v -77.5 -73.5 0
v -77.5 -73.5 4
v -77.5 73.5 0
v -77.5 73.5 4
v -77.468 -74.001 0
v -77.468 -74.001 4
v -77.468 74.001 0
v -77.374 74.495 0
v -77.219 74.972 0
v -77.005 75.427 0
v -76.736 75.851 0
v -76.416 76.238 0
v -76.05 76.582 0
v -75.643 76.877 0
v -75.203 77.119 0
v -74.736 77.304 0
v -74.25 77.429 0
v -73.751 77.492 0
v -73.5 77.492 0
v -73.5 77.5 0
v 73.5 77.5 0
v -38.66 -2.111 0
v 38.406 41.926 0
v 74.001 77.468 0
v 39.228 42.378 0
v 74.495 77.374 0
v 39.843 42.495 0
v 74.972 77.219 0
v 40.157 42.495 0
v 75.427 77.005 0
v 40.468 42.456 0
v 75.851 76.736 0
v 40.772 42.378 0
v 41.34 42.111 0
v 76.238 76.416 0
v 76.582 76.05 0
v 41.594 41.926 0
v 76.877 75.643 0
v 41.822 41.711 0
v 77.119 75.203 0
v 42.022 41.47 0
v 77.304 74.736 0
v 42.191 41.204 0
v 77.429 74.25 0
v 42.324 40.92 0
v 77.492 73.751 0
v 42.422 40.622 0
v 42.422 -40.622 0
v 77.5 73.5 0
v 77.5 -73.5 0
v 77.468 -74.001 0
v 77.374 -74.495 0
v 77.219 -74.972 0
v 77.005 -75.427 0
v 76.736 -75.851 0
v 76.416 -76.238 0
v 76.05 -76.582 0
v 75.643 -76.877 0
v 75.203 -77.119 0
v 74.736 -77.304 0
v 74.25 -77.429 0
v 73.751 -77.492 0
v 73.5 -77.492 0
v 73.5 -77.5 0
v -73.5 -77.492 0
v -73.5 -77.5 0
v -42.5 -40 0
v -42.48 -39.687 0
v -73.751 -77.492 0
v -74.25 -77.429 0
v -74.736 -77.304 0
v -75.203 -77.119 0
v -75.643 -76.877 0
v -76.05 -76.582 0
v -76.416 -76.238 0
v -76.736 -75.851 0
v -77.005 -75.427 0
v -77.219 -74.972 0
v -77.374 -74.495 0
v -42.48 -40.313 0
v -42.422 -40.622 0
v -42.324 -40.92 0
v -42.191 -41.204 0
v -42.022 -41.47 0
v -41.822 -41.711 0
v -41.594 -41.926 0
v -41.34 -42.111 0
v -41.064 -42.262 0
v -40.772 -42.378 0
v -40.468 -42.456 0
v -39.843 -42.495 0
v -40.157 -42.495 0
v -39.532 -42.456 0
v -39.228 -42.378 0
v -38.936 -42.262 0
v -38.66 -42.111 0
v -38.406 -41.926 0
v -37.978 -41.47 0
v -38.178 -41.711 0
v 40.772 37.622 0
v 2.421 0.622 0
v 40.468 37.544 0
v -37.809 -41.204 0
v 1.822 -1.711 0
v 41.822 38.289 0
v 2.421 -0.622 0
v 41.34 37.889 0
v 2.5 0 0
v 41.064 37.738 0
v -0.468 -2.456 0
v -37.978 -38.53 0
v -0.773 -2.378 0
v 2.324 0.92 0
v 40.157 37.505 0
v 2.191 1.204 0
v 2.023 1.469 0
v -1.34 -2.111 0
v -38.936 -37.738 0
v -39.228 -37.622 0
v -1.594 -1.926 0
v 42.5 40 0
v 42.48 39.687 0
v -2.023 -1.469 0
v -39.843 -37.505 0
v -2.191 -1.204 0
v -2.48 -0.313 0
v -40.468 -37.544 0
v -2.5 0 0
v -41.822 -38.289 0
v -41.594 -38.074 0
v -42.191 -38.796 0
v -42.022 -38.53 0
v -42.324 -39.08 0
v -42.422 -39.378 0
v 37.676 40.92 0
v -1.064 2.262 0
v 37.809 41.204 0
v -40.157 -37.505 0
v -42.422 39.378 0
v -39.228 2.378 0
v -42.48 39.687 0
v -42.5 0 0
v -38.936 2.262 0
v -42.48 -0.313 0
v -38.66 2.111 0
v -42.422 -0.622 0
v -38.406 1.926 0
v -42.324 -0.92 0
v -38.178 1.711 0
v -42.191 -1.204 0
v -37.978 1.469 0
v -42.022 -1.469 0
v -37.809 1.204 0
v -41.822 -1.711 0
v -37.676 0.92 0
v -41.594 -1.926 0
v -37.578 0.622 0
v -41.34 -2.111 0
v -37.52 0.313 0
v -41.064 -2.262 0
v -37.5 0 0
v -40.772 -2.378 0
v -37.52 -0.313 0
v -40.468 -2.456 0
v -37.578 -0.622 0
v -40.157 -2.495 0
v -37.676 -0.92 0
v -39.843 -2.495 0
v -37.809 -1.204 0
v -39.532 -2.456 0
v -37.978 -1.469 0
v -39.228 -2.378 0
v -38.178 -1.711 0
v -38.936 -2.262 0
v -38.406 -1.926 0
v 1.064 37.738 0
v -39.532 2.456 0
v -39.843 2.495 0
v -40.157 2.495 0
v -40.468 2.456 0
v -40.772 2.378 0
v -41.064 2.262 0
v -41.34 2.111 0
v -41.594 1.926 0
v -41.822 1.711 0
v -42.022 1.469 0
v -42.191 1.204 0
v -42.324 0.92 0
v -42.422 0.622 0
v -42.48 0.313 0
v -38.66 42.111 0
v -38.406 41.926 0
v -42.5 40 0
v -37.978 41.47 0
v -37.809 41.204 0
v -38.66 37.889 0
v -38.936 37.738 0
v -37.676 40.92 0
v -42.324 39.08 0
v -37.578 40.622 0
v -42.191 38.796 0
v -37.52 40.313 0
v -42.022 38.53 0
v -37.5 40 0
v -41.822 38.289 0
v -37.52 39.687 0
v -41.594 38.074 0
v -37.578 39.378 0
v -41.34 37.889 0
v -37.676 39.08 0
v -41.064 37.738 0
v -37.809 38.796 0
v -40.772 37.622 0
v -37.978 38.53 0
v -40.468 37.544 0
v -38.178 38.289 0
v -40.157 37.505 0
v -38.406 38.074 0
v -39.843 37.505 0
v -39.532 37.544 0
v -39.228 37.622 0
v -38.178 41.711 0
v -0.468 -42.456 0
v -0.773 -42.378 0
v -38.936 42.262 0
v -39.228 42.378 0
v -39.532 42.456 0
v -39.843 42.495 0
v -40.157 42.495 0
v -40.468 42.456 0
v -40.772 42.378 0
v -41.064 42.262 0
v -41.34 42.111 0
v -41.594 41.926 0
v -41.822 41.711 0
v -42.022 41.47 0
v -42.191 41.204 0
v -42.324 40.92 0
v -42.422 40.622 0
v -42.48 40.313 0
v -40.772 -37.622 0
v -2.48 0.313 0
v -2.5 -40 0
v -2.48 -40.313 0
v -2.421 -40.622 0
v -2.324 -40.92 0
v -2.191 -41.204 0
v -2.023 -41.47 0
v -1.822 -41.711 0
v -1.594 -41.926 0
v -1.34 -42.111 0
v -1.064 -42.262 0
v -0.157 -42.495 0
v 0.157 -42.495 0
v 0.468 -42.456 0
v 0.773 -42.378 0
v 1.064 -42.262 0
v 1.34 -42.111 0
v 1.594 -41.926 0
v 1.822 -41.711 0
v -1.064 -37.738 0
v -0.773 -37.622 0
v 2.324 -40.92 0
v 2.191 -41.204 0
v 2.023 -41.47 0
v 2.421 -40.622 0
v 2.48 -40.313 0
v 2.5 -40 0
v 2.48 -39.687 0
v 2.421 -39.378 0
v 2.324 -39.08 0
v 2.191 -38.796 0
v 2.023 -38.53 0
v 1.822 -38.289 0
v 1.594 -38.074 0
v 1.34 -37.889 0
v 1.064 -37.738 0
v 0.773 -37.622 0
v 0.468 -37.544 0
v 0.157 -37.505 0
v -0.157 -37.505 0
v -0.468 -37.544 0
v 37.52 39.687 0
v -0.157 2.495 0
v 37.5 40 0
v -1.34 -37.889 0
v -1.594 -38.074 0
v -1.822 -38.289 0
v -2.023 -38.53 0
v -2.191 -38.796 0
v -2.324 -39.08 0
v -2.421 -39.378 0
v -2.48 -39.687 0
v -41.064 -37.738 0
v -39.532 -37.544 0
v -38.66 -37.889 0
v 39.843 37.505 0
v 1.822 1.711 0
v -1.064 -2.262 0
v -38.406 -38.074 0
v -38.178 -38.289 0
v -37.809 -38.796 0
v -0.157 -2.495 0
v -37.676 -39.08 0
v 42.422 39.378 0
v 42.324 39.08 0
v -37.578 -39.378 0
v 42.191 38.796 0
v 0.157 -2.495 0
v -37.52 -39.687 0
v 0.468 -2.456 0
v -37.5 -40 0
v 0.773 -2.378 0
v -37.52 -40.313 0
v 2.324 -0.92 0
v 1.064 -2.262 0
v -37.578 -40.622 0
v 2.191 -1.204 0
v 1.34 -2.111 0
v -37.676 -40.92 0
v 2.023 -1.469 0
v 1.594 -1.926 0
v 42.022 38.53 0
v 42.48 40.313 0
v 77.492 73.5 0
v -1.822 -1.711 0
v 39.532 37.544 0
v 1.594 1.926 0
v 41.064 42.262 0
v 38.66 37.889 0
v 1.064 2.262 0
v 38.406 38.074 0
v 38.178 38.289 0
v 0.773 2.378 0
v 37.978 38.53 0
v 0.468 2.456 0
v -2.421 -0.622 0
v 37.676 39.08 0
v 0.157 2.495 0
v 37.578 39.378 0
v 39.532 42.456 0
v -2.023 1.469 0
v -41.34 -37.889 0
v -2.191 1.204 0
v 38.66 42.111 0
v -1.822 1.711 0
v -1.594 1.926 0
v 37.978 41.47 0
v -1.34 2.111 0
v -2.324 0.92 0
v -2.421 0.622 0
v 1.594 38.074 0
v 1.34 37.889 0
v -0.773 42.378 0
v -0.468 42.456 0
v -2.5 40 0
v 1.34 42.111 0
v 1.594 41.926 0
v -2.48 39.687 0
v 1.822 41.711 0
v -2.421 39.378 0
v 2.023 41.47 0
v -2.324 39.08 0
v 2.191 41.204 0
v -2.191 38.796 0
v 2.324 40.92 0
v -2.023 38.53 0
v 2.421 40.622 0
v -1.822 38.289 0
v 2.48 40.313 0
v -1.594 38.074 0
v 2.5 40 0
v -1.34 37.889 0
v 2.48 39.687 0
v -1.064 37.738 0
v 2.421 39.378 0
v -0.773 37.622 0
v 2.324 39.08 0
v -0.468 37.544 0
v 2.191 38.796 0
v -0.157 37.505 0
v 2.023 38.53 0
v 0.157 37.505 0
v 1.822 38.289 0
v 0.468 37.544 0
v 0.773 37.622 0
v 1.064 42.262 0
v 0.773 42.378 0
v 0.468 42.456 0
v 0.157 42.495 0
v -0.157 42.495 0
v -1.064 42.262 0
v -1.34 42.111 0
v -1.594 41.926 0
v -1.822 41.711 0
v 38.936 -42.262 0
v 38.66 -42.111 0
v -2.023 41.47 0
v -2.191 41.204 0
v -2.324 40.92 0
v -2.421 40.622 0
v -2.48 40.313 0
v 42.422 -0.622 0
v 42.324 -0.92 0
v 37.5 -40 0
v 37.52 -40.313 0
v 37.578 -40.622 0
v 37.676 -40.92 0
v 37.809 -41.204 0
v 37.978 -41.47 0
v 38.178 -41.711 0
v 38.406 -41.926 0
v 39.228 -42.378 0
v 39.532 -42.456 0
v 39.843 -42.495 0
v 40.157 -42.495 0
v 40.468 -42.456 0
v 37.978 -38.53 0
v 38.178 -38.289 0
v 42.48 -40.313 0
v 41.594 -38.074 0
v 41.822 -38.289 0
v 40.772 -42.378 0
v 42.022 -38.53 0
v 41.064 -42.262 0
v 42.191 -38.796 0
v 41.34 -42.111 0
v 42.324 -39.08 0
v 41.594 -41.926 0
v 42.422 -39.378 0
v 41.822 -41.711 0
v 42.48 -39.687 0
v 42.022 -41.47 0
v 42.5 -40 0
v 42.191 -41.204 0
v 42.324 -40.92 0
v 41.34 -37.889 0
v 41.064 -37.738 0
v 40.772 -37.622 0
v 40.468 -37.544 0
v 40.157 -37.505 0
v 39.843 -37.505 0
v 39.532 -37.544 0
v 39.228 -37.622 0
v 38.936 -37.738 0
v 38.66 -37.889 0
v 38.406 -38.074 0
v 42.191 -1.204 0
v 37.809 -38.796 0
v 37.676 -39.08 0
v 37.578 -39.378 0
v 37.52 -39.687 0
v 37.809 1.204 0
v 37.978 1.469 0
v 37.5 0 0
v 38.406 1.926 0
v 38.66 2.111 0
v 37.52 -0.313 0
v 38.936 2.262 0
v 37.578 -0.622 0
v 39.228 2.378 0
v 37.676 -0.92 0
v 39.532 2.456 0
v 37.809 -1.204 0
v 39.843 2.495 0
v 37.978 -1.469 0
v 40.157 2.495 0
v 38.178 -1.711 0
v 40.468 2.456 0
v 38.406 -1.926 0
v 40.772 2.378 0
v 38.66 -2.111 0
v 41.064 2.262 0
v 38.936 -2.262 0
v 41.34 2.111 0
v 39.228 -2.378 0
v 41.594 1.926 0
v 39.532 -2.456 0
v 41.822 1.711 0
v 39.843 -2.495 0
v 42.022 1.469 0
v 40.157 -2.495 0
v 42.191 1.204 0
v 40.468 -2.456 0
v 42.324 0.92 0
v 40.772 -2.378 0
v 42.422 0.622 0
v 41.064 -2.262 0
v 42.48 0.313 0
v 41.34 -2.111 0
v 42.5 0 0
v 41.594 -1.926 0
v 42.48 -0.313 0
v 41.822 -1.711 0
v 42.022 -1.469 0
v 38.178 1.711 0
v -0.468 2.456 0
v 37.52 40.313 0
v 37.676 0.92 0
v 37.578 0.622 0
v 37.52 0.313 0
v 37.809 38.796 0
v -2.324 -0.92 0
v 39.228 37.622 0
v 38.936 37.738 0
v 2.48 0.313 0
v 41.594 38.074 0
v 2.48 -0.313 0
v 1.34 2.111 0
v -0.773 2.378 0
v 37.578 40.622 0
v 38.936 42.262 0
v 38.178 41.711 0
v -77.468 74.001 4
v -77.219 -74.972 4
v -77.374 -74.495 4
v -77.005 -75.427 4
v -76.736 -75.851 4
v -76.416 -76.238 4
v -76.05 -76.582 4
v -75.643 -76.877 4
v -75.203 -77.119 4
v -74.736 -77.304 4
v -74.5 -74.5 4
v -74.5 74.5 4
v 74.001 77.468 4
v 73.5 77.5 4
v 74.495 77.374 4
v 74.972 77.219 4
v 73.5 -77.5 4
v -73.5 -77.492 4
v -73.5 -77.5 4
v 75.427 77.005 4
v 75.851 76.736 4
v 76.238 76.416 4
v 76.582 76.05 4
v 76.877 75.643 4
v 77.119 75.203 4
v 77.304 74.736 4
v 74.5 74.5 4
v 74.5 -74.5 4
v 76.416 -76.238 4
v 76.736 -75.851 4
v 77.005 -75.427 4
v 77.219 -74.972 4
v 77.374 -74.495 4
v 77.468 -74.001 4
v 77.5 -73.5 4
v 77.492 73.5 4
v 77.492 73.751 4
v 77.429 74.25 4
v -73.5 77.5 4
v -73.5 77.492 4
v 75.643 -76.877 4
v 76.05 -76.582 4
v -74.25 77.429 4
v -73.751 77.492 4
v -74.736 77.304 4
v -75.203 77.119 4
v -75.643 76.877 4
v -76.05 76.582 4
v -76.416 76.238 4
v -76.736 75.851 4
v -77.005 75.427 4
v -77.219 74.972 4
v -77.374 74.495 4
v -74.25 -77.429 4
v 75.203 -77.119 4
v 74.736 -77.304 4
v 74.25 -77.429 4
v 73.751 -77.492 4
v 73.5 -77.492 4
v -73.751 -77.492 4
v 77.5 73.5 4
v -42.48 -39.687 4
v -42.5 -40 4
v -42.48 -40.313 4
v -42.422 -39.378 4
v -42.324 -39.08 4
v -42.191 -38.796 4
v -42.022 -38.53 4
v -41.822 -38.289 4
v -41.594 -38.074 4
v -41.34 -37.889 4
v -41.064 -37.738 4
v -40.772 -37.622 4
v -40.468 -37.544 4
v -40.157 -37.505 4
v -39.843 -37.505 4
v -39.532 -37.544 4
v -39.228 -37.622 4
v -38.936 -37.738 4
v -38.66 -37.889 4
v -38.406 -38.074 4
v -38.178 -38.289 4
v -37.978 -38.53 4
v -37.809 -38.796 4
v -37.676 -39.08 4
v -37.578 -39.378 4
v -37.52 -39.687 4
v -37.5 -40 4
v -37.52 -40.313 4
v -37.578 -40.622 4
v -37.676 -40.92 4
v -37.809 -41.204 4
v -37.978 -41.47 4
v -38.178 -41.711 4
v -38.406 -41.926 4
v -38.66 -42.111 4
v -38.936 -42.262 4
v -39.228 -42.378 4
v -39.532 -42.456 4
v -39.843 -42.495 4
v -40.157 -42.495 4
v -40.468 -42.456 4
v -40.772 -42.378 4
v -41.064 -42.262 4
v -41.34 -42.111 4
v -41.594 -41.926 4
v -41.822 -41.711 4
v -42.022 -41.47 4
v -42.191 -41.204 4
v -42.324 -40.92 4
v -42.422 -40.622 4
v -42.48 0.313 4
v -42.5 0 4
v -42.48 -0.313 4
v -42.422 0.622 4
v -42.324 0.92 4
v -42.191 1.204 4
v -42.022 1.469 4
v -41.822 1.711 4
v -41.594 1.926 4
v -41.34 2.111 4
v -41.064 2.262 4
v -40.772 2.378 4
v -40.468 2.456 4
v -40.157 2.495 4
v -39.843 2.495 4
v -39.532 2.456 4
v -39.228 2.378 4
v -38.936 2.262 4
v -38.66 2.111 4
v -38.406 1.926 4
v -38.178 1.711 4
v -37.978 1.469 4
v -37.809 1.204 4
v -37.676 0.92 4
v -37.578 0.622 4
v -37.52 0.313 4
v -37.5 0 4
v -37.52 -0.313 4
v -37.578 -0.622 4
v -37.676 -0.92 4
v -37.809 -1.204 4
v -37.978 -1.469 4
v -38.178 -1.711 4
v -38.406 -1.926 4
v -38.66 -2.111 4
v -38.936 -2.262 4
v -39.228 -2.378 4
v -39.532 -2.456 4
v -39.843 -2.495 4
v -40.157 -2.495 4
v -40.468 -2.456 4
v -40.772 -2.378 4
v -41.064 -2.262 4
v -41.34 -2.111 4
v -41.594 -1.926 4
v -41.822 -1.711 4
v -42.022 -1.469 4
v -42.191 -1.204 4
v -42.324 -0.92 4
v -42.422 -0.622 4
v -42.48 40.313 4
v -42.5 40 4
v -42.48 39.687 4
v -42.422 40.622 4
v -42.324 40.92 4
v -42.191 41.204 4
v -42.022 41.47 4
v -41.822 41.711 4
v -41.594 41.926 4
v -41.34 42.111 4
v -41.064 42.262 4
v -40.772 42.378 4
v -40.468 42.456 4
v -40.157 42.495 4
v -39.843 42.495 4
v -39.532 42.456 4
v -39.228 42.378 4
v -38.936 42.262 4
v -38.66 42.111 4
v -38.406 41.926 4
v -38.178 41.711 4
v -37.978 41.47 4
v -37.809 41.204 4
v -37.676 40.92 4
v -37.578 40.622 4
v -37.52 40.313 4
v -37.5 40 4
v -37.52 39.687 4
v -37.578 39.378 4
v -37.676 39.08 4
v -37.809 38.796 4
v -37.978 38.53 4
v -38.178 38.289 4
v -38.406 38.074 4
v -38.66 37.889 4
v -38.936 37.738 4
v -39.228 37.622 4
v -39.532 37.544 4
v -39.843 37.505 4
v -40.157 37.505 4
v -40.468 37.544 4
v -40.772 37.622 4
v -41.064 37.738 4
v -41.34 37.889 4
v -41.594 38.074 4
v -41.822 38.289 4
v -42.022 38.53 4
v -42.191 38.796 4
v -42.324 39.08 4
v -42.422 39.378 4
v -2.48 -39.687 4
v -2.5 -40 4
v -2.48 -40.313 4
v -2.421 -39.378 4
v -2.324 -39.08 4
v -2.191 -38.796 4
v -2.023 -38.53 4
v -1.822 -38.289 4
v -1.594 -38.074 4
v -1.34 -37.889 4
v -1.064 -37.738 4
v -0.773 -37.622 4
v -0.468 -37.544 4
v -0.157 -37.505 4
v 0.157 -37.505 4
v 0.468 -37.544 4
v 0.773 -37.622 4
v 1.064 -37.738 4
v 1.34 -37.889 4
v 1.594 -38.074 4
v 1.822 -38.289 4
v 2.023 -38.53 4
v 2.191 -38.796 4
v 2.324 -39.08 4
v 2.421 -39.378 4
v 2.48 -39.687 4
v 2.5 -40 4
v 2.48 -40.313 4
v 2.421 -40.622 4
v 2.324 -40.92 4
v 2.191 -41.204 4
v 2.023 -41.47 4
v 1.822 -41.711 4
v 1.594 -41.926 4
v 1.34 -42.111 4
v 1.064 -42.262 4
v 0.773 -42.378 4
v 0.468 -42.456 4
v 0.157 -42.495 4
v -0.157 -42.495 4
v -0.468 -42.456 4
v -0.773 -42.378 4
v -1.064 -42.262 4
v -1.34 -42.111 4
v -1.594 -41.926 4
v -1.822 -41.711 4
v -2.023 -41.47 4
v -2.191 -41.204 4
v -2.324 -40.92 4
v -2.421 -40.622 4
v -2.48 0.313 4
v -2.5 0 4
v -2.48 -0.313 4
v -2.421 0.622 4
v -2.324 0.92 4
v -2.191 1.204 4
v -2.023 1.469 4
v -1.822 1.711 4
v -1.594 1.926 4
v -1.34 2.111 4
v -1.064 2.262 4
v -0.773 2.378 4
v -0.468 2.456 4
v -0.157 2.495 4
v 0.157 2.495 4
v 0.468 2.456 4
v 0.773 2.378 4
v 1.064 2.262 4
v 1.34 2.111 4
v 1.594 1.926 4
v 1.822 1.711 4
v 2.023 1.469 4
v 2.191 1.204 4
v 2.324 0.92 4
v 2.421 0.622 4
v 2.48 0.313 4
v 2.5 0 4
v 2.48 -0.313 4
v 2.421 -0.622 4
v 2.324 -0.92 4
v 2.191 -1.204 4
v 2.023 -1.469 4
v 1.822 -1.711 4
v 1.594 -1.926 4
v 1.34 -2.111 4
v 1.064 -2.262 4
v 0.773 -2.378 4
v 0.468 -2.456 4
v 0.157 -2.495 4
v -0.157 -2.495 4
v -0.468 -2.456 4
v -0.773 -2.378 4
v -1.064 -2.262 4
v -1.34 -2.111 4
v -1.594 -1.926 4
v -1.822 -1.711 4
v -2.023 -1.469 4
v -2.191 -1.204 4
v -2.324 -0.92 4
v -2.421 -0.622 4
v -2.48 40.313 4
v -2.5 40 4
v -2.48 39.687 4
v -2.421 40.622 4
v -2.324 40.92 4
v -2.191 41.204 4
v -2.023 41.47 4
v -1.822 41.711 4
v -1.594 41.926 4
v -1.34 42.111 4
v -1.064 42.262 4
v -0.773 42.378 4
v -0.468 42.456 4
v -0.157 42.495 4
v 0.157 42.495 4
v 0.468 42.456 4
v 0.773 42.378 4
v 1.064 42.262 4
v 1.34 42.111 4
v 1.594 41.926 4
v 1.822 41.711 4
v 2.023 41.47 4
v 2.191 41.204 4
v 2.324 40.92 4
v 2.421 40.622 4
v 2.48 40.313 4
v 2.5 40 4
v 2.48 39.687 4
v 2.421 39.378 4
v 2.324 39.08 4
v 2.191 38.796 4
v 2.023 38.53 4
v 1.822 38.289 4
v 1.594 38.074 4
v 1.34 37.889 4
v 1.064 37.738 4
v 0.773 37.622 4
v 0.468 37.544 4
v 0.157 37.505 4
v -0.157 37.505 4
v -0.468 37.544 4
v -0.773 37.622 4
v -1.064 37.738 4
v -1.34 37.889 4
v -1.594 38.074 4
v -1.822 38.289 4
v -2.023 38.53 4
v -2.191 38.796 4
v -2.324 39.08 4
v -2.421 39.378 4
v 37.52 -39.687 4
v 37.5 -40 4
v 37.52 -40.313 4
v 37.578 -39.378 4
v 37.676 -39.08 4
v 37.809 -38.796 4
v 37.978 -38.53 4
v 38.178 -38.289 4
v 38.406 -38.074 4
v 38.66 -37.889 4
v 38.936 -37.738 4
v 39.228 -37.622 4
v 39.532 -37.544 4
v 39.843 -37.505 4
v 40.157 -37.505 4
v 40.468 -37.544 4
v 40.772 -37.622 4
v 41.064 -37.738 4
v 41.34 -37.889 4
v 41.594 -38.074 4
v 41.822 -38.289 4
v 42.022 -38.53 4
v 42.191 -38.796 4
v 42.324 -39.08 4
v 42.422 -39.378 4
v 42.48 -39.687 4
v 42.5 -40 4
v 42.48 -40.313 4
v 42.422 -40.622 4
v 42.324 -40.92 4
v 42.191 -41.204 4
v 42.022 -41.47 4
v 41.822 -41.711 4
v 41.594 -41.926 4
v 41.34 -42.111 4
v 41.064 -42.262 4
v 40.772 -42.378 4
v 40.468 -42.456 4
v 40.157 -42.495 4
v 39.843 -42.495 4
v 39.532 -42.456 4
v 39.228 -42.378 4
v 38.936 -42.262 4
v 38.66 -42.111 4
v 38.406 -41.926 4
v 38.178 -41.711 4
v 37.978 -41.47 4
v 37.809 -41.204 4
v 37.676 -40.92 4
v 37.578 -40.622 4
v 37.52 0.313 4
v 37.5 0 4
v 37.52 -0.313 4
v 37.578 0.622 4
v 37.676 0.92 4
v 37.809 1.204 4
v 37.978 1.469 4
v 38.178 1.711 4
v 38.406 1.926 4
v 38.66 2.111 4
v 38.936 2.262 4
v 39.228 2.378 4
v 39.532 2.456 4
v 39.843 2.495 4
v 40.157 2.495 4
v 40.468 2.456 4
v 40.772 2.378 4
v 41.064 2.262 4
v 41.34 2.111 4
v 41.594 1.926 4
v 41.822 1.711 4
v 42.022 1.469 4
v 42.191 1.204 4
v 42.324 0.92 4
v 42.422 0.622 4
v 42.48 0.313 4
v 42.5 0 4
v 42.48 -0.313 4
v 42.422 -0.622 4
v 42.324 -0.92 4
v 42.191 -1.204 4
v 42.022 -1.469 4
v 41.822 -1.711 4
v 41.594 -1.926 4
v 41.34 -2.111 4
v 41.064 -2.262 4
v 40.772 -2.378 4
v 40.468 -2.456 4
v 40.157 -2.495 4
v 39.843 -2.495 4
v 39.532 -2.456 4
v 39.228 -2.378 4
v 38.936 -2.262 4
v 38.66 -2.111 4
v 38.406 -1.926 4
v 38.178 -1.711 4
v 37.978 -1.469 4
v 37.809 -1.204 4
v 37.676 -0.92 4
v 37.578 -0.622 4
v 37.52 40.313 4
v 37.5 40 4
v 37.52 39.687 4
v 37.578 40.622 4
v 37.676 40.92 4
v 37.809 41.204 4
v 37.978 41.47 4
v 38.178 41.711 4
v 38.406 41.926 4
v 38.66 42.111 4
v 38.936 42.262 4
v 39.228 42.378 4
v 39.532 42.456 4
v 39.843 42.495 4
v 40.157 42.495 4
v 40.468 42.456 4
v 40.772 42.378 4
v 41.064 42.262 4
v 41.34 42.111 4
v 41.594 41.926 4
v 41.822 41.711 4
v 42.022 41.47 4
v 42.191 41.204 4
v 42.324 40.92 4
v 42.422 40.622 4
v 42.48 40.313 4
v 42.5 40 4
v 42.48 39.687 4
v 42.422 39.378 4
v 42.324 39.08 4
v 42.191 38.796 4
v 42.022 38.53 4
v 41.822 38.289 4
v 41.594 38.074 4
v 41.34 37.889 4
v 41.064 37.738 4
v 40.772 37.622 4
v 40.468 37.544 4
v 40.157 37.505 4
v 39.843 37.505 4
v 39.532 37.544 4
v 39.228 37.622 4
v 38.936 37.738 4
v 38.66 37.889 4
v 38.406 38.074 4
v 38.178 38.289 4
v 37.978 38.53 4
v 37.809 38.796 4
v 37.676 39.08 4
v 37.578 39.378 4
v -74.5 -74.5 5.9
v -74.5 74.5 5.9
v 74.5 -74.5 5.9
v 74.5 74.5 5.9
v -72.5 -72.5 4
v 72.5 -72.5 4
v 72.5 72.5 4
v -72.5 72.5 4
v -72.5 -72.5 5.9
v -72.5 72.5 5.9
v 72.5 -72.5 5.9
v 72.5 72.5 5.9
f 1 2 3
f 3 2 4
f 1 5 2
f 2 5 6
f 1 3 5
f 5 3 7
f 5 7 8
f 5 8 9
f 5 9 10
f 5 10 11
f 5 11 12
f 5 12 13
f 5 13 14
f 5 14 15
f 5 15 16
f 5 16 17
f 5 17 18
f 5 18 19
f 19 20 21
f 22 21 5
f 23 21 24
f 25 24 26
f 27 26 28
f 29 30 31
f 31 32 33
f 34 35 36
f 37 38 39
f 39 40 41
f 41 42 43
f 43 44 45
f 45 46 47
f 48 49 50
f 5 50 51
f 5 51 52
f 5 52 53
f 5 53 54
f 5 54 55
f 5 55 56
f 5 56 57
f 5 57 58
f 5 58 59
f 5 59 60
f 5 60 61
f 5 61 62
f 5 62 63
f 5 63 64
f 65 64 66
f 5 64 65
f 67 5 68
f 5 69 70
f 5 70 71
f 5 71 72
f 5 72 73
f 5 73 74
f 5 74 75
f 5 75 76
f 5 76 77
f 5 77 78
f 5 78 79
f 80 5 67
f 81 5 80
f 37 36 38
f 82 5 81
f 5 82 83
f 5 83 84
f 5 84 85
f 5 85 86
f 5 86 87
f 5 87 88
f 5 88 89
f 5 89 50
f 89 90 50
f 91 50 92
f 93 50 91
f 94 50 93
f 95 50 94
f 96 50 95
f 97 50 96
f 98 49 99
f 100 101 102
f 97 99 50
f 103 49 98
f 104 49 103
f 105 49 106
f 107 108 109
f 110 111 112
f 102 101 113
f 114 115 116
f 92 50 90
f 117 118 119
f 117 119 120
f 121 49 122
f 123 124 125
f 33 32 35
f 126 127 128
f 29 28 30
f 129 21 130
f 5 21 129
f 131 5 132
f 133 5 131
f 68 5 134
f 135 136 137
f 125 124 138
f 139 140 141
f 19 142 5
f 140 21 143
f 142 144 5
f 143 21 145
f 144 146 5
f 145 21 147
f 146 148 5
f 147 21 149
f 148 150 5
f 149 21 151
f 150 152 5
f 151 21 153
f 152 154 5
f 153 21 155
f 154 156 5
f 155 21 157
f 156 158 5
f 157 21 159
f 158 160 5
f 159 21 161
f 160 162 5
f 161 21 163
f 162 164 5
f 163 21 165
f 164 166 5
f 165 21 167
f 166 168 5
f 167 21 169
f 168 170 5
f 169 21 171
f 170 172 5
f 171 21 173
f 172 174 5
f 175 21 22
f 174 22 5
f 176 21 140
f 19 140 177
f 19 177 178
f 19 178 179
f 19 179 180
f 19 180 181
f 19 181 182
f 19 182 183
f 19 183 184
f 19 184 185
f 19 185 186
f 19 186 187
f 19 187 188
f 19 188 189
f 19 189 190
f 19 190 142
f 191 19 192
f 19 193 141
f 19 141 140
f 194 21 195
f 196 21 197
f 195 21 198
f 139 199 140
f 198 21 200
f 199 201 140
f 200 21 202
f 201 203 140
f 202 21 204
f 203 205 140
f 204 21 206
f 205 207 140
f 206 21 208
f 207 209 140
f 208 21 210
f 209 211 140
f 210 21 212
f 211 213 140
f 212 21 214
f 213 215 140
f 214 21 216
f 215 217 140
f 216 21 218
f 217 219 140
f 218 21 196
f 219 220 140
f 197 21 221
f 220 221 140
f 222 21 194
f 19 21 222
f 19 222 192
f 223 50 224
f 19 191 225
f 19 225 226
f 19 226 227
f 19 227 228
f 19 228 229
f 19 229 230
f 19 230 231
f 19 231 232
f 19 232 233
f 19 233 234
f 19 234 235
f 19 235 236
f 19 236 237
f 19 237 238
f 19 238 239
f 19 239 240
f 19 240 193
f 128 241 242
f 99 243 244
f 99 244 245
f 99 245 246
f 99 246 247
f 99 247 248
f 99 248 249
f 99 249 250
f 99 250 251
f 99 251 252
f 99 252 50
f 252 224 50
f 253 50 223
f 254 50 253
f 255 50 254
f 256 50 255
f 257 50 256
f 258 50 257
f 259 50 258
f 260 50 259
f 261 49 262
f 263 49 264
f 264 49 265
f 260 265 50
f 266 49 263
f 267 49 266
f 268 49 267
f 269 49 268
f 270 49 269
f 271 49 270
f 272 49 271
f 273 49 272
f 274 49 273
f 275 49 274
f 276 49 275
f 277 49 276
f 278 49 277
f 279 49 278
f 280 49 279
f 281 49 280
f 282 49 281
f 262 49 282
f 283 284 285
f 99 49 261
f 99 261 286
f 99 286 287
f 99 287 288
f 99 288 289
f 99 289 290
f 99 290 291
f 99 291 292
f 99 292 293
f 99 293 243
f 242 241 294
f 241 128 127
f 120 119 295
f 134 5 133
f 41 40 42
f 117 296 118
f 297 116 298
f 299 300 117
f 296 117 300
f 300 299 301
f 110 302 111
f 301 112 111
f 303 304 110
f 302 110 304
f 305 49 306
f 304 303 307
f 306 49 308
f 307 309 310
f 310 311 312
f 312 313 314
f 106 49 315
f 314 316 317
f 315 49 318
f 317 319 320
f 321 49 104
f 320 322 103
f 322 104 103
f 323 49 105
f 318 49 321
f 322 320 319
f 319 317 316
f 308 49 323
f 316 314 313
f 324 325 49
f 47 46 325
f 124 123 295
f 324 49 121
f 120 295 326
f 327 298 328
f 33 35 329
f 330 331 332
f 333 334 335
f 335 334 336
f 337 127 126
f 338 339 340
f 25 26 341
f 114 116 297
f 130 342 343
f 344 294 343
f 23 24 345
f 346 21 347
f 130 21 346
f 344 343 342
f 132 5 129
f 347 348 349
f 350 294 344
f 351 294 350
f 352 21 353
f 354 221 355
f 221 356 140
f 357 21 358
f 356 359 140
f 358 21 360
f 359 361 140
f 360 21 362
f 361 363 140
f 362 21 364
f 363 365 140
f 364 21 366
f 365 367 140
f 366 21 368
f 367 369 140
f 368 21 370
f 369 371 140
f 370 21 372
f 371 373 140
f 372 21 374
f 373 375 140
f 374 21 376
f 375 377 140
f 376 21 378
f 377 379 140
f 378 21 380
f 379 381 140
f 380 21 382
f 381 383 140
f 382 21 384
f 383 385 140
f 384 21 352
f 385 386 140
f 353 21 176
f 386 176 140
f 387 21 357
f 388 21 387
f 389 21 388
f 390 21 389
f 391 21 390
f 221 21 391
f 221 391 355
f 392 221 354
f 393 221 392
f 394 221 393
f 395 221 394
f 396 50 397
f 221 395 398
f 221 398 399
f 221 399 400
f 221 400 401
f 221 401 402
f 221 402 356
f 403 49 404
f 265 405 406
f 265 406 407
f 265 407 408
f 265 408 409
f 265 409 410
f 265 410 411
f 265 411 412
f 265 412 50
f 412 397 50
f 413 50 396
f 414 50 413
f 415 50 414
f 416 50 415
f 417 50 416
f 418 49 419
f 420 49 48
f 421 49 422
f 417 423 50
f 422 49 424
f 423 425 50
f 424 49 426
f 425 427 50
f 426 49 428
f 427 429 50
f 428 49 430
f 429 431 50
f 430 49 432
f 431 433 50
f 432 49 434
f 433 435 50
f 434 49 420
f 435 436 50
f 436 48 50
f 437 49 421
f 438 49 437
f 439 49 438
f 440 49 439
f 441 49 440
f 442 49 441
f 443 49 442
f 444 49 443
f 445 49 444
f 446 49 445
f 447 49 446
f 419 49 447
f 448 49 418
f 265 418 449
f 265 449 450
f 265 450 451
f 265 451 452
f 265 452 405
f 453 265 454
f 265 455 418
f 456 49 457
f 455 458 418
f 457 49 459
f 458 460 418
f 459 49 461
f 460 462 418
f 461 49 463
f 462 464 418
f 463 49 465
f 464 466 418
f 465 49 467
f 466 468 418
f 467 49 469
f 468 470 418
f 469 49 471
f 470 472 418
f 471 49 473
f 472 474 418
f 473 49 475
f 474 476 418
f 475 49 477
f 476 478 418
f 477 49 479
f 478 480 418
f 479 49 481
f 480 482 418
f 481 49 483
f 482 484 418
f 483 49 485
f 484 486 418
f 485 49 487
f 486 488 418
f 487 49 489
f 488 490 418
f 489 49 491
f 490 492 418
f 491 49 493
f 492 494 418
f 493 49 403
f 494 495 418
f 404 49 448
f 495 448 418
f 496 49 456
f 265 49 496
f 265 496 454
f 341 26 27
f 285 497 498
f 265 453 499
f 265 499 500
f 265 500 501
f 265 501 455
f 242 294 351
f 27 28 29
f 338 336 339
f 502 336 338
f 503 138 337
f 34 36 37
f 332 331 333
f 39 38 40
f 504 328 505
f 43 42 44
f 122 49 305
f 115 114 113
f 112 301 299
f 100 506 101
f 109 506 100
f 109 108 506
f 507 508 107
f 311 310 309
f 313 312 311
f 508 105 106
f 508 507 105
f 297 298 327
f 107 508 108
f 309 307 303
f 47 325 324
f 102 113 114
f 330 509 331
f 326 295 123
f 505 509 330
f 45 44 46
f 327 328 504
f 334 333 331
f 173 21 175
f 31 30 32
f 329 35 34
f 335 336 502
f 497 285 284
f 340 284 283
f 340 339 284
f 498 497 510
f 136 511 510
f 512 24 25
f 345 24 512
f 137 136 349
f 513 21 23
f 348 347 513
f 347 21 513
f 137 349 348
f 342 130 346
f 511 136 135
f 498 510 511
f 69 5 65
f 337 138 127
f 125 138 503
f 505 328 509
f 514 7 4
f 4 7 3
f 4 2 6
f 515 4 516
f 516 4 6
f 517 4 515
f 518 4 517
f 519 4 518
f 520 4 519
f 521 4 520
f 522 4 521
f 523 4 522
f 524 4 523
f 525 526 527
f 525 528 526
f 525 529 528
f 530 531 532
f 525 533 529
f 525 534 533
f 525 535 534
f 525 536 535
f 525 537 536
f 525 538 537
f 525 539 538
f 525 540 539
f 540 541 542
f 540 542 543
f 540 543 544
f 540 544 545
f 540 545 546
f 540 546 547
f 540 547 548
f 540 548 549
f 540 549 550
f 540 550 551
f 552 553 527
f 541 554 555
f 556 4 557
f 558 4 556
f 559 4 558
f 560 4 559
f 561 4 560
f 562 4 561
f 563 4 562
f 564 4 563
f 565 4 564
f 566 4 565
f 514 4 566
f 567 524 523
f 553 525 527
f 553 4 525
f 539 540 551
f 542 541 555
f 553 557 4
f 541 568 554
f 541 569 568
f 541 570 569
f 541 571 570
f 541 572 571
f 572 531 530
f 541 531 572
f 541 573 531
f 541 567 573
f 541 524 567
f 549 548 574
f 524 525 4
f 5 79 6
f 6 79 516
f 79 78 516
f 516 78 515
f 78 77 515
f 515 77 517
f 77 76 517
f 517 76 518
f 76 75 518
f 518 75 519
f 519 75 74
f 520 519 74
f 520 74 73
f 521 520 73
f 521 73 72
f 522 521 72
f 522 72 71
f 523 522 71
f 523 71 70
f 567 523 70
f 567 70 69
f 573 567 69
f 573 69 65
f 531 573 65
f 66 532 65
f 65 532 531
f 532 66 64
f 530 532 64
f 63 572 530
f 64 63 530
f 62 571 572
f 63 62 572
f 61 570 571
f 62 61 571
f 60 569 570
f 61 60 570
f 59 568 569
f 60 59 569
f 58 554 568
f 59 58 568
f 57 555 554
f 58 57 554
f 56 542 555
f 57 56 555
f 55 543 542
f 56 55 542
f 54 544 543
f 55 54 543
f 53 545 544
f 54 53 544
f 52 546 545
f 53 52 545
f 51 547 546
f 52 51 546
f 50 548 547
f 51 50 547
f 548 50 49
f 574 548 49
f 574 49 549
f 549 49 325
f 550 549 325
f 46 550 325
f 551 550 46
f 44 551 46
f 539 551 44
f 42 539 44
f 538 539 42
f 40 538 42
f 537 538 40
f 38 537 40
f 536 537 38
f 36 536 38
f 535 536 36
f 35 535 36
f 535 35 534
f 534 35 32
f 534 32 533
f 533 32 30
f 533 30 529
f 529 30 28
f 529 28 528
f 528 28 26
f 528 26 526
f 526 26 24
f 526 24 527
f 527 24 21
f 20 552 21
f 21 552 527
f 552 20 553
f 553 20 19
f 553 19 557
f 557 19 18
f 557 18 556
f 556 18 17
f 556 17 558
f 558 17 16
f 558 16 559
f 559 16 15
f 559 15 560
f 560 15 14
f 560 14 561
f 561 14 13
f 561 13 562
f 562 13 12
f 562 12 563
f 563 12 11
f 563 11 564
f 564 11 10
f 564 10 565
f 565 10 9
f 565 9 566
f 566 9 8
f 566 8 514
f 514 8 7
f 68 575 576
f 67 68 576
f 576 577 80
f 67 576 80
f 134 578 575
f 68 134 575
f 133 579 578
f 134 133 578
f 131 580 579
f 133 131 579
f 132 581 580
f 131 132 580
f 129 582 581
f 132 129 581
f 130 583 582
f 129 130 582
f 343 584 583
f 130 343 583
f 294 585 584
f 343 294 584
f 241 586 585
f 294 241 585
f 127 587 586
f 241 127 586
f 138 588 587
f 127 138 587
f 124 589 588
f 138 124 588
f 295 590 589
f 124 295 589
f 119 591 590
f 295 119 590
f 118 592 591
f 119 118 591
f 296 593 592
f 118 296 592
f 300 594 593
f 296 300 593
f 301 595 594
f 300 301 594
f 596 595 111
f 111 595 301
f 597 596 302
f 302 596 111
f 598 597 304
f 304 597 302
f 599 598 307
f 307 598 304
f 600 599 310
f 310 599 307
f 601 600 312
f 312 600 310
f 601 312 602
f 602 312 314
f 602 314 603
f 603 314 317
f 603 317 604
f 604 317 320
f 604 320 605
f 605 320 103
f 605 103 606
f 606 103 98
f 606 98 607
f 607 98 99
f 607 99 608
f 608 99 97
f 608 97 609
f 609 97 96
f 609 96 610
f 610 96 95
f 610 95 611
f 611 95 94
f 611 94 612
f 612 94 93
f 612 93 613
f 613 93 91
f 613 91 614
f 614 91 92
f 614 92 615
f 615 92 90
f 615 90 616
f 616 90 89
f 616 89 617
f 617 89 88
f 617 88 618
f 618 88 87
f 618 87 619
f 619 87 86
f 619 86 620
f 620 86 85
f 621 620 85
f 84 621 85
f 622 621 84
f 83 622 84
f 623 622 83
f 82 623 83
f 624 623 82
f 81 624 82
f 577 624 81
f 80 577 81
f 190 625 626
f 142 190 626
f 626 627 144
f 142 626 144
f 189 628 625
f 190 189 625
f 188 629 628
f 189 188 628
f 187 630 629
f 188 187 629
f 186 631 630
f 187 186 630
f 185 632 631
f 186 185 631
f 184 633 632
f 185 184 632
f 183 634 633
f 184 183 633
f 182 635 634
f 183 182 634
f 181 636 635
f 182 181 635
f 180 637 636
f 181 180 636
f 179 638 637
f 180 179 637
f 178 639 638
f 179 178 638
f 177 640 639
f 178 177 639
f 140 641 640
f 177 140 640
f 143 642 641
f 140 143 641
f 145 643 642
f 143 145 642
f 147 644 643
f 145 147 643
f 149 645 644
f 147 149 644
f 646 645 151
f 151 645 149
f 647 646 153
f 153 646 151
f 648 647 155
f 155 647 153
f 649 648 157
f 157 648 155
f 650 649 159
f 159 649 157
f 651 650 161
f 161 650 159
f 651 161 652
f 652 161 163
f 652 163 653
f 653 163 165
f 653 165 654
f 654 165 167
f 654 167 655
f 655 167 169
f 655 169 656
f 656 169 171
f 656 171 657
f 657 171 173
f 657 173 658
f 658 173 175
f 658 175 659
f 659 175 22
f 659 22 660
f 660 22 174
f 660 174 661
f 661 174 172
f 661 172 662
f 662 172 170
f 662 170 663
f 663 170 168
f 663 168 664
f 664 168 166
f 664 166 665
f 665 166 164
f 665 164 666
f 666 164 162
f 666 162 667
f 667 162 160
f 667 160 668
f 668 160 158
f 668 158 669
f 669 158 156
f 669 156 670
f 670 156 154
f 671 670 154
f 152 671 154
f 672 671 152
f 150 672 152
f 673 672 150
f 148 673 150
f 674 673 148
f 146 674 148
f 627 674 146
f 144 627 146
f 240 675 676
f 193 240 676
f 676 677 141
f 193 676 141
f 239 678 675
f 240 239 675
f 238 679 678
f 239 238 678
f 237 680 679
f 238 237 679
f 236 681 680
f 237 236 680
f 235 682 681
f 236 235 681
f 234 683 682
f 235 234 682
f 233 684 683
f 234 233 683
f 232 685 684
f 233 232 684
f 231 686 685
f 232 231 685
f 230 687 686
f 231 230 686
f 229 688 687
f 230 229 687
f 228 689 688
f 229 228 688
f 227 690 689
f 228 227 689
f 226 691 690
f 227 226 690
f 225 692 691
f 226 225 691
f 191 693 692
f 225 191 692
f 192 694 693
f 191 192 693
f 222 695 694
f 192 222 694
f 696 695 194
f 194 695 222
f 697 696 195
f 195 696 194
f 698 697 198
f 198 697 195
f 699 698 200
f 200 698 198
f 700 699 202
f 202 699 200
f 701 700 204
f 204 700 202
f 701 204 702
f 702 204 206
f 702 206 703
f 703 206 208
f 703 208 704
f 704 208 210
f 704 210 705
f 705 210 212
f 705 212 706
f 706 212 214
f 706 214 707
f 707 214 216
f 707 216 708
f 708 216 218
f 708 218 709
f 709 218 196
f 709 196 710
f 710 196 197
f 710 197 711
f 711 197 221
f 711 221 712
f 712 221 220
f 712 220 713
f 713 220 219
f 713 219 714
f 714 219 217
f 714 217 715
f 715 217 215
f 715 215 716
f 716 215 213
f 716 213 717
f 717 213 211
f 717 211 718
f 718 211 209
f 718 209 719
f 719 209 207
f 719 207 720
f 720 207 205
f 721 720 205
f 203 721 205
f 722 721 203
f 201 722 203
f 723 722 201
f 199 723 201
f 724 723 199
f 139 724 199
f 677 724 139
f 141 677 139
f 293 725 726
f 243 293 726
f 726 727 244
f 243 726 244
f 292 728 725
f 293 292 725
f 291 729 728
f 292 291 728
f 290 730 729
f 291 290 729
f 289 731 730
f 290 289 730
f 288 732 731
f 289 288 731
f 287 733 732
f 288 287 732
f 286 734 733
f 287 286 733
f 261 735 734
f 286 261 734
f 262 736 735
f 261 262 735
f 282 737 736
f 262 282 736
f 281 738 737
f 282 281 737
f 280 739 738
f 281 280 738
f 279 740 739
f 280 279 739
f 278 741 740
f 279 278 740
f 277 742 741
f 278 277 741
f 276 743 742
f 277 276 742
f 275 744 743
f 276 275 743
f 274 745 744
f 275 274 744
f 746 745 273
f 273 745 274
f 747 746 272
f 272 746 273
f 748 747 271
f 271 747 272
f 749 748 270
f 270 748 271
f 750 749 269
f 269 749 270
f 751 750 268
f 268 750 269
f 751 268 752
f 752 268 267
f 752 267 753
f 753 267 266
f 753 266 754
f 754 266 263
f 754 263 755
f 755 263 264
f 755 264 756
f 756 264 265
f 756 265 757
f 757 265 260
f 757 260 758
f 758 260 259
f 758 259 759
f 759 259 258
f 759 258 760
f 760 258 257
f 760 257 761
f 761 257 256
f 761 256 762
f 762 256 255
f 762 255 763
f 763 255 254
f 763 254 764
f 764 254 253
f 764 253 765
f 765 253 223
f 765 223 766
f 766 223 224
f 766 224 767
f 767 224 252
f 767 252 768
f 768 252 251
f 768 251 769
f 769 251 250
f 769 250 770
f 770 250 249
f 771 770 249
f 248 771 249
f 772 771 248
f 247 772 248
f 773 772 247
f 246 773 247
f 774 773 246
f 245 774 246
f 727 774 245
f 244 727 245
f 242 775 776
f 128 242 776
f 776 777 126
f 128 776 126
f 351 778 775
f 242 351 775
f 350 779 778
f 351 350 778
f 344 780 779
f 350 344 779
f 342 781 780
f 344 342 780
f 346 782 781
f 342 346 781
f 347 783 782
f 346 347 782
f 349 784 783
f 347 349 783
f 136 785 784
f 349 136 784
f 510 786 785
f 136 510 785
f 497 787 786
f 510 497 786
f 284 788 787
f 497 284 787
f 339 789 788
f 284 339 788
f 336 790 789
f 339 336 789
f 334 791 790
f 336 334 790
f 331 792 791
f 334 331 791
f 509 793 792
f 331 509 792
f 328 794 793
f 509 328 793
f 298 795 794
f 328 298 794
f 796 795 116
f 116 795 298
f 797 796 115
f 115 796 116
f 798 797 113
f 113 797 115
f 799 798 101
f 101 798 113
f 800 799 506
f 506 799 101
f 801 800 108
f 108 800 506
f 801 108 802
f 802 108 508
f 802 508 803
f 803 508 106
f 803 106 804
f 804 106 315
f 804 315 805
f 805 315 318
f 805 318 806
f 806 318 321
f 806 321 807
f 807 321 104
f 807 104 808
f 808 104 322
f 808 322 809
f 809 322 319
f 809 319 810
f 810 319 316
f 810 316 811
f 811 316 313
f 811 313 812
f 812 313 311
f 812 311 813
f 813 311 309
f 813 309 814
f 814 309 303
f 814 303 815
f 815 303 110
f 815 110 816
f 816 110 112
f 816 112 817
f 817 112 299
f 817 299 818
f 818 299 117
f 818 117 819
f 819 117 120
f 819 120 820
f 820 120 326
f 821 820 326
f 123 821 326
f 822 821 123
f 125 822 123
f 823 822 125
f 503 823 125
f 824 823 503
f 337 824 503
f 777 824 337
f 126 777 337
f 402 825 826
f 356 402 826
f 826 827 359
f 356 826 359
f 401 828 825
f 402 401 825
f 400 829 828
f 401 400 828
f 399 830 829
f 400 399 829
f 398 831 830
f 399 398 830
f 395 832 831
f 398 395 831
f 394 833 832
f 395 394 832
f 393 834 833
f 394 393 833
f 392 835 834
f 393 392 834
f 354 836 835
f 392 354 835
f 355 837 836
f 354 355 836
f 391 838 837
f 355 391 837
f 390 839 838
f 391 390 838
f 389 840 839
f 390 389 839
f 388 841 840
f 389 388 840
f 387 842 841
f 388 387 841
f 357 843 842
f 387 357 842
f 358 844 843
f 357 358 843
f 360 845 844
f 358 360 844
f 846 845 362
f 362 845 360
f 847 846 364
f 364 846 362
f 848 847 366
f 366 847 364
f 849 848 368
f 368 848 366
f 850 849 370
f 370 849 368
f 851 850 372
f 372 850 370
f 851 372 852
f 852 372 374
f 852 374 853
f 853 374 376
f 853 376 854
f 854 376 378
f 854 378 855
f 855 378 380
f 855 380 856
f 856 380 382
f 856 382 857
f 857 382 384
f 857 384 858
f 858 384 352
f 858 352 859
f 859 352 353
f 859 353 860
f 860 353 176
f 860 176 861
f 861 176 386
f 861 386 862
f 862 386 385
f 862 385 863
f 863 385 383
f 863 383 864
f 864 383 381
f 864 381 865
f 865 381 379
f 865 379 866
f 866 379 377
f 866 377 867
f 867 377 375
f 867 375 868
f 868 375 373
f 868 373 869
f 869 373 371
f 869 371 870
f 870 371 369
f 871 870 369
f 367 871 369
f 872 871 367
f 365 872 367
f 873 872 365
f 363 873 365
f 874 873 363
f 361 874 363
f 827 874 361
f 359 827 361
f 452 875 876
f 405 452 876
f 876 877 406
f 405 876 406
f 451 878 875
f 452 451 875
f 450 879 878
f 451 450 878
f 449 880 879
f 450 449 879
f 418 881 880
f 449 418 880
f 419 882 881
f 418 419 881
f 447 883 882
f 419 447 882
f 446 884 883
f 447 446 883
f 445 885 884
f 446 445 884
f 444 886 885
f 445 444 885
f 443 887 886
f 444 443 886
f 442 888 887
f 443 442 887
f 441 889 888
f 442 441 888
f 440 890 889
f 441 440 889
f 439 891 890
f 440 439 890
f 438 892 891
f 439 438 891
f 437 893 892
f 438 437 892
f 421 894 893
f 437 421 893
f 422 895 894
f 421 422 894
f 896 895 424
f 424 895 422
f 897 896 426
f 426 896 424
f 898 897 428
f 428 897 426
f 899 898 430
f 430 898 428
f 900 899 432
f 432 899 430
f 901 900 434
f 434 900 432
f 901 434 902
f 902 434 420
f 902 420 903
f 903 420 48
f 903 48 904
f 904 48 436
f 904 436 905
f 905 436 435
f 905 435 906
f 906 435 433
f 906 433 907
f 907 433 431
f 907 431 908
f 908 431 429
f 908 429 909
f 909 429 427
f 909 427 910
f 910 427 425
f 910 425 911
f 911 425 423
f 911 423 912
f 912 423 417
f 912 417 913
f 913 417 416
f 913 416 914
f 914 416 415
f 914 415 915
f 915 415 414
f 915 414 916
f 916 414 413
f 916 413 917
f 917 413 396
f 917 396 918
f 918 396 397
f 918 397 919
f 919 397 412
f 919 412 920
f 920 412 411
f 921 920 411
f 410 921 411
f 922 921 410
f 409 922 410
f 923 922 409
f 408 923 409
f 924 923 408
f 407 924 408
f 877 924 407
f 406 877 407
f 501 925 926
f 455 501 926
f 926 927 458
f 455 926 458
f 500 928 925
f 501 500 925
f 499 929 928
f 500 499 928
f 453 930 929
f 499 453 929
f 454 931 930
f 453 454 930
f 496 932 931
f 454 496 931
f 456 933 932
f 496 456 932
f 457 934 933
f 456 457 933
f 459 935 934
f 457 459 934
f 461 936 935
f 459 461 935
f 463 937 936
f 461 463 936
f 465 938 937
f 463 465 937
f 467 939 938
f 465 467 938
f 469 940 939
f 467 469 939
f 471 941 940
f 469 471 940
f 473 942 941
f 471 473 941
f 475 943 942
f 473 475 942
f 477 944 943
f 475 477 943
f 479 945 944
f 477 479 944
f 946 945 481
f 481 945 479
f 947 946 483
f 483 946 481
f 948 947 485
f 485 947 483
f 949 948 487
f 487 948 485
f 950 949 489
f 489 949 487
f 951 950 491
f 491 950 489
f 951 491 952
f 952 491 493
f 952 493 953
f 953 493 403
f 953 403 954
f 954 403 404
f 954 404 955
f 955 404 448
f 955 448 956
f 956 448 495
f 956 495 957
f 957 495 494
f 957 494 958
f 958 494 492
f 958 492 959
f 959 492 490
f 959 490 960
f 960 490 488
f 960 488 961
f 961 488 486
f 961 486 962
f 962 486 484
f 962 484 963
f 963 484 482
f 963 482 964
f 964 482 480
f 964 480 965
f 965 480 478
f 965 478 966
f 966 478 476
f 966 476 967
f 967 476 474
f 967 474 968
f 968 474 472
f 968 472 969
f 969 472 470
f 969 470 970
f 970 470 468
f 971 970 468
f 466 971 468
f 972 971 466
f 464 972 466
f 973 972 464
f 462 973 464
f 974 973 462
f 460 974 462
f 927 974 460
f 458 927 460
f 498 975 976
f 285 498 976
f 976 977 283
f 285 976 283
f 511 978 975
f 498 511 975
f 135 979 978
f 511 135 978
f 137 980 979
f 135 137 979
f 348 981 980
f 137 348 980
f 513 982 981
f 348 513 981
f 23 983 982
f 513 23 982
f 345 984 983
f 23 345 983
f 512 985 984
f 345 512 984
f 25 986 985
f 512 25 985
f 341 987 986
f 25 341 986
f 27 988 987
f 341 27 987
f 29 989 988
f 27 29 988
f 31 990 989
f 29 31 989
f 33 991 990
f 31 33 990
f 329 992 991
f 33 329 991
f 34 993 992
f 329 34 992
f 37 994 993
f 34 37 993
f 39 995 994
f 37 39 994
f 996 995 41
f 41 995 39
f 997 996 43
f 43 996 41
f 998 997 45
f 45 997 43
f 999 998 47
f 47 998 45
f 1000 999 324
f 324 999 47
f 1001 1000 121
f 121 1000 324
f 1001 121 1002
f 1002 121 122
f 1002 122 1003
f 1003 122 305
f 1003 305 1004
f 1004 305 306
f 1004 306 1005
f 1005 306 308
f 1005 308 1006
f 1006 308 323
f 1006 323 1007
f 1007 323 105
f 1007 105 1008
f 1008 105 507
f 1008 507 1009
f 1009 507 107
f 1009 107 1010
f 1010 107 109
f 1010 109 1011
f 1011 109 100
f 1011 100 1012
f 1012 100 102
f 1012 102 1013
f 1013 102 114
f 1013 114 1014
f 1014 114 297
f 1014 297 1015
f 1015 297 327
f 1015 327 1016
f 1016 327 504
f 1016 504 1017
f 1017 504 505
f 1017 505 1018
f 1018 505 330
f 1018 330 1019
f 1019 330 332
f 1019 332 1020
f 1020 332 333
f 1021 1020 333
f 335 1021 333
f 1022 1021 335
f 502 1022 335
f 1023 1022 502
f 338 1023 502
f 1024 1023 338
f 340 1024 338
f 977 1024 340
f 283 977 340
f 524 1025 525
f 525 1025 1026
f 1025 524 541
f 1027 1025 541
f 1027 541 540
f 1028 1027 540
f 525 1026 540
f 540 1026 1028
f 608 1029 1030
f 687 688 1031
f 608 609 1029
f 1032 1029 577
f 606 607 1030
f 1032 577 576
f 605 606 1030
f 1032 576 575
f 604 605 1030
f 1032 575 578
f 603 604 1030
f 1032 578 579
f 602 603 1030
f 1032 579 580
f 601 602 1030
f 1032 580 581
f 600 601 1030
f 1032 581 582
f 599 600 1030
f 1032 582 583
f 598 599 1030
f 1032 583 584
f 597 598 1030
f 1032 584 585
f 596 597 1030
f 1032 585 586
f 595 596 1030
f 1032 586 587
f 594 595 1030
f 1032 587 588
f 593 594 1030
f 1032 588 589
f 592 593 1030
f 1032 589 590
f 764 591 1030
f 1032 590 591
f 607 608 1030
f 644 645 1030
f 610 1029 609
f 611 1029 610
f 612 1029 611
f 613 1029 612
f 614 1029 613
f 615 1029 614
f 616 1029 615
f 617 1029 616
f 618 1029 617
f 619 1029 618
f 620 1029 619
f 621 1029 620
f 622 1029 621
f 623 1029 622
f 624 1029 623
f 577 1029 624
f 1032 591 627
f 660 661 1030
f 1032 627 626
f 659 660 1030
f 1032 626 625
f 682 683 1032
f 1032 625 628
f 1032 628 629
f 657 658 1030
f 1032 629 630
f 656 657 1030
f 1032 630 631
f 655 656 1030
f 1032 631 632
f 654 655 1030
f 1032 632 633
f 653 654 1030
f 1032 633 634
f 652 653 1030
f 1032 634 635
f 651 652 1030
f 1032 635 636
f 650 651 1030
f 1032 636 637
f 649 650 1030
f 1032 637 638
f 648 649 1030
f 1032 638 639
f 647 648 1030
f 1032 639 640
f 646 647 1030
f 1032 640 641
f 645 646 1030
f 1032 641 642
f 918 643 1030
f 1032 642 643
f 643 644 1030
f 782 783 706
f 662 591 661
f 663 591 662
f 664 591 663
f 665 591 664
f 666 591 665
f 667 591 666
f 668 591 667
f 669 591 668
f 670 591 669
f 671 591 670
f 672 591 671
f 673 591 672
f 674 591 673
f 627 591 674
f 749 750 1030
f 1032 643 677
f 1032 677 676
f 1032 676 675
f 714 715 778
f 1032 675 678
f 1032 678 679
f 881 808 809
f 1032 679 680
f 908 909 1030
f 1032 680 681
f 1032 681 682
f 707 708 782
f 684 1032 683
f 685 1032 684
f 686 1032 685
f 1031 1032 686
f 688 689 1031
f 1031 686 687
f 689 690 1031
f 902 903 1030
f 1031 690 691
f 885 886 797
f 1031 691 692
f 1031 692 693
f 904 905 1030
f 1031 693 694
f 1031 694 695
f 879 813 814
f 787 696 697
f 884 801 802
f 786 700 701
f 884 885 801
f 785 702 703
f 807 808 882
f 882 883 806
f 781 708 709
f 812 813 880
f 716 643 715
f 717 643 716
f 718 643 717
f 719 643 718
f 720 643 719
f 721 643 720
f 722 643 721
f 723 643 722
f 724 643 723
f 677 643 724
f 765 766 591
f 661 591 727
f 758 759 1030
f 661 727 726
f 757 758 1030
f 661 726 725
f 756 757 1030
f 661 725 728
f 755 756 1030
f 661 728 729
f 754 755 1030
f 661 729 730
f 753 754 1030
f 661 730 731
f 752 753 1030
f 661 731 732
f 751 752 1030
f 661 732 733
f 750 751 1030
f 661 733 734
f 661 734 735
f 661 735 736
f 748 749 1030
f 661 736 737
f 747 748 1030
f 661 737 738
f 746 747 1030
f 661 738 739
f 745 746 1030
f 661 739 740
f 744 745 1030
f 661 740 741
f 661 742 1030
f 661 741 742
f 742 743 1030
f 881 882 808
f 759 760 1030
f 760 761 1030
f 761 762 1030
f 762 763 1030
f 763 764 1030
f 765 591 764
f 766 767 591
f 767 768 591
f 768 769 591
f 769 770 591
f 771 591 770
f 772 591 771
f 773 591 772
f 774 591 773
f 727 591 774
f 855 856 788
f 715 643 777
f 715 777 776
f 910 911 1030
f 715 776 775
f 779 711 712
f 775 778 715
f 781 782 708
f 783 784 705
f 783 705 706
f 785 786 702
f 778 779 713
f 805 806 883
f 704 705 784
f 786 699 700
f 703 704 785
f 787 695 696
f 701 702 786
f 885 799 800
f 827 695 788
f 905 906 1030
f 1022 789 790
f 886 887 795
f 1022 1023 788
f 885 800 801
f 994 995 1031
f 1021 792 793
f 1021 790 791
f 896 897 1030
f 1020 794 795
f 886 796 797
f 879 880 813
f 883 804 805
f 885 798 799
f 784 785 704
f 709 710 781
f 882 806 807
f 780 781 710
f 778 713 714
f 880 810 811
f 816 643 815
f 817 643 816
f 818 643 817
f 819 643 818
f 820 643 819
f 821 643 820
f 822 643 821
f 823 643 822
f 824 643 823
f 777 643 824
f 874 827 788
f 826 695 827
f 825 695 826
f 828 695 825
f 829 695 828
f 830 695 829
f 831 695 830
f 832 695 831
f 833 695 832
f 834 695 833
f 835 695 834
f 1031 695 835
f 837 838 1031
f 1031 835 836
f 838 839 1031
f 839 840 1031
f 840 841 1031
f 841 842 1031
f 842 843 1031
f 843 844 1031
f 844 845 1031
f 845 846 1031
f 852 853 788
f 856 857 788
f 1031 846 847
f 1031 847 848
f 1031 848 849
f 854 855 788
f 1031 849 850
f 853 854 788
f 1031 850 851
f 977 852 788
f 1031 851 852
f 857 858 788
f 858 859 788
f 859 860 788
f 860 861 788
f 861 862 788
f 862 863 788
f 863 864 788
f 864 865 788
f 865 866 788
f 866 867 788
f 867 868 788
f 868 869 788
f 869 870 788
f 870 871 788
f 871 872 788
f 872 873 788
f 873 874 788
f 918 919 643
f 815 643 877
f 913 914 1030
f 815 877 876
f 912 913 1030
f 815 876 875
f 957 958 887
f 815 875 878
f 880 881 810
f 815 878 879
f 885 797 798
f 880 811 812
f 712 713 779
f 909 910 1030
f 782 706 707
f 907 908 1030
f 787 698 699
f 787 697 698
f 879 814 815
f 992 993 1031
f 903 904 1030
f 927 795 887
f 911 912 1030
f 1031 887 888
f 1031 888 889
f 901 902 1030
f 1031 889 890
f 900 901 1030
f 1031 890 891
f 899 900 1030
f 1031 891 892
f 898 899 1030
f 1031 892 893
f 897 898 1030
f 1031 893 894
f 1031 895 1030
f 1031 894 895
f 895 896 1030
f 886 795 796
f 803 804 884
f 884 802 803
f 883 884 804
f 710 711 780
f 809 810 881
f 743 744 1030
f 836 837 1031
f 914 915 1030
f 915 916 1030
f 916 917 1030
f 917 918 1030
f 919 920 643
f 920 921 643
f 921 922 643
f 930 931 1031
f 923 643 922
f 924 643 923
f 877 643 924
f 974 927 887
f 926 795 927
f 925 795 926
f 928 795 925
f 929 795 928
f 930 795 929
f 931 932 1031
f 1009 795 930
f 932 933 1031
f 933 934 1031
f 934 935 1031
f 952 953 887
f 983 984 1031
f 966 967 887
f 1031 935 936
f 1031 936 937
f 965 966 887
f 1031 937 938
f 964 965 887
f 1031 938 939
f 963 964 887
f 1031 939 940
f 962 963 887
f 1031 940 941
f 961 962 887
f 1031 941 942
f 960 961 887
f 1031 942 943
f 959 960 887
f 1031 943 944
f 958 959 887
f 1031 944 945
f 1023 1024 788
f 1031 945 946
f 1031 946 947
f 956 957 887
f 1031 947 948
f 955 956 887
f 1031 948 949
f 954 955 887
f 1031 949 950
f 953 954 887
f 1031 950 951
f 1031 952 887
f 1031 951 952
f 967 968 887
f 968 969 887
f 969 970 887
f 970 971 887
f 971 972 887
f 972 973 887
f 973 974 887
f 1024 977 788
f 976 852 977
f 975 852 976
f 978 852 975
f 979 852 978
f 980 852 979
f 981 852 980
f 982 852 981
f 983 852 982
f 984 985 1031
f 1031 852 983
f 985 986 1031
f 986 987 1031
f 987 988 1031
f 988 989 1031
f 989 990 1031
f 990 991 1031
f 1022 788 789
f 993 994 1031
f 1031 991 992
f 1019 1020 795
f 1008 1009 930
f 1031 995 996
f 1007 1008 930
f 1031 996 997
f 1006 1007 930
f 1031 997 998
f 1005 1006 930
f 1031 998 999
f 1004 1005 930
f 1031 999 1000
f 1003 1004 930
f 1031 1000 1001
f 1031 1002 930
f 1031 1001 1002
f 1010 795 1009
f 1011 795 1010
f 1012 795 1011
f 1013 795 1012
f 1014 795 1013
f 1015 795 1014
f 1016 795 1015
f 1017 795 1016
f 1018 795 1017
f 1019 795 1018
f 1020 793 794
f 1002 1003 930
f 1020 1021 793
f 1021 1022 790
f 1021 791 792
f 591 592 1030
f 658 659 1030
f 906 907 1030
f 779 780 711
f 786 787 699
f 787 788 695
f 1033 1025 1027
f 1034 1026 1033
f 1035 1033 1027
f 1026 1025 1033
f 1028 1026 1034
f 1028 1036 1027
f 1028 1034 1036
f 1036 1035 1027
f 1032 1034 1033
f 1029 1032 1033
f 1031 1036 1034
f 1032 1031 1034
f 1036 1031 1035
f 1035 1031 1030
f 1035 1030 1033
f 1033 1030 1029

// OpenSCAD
// A board for "electronique 2000" modules (Joustra)

// Copyright (c) 2014 Jérémie DECOCK <jd.jdhp@gmail.com>

/////////////////////////////////////////////

module board(feet_board_width,
             feet_board_spacing,
             feet_board_depth,
             holes_radius,
             holes_spacing,
             num_holes_x,
             num_holes_y,
             board_size_x,
             board_size_y,
             board_size_z,
             board_corner_radius) {


    difference() {
        // board
        cube([board_size_x, board_size_y, board_size_z], center=true);

        // holes
        translate([-board_size_x/2 - holes_radius, -board_size_y/2 - holes_radius, 0]) {        
            for(ix = [1:num_holes_x]) {    
                for(iy = [1:num_holes_y]) {    
                    translate([ix*(holes_spacing + holes_radius * 2), iy*(holes_spacing + holes_radius * 2), 0]) {        
                        #cylinder(r=holes_radius, h=board_size_z+2, center=true, $fn=50);
                    }
                }
            }
        }

        // round corners
        #board_round_4_corner_mask(radius=board_corner_radius, spacing_x=board_size_x-2*board_corner_radius, spacing_y=board_size_y-2*board_corner_radius, depth=board_size_z + 2);
    }

    // feet
    color([1,0,0]) {
        translate([0, 0, board_size_z/2 + feet_board_depth/2 - 0.1]) {        
            difference() {
                cube([board_size_x - feet_board_spacing, board_size_y - feet_board_spacing, feet_board_depth], center=true);
                cube([board_size_x - feet_board_spacing - feet_board_width*2, board_size_y - feet_board_spacing - feet_board_width*2, feet_board_depth+2], center=true);
            }
        }
    }
}

/////////////////////////////////////////////

module round_corner_mask(radius, spacing_x, spacing_y, depth) {
	$fn=50;
	
    difference() {
        cube([2*radius+1, 2*radius+1, depth], center=true);
        union() {
            cylinder(r=radius, h=depth+2, center=true);
            translate([(radius+2)/2, 0, 0]) cube([radius+2, 2*radius+2, depth+2], center=true);
            translate([0, (radius+2)/2, 0]) cube([2*radius+2, radius+2, depth+2], center=true);
        }
    }
}

module board_round_4_corner_mask(radius, spacing_x, spacing_y, depth) {
    translate([-spacing_x/2,  spacing_y/2, 0]) mirror([0,1,0]) round_corner_mask(radius, spacing_x, spacing_y, depth);
    translate([-spacing_x/2, -spacing_y/2, 0]) mirror([0,0,0]) round_corner_mask(radius, spacing_x, spacing_y, depth);
    translate([ spacing_x/2,  spacing_y/2, 0]) mirror([1,1,0]) round_corner_mask(radius, spacing_x, spacing_y, depth);
    translate([ spacing_x/2, -spacing_y/2, 0]) mirror([1,0,0]) round_corner_mask(radius, spacing_x, spacing_y, depth);
}

/////////////////////////////////////////////

assign(feet_board_width=2,
       feet_board_spacing=6,
       feet_board_depth=2,
       holes_radius=2.5,
       holes_spacing=35,
       num_holes_x=3,
       num_holes_y=3,
       board_size_z=4,
       board_corner_radius=4) {

    translate([0, 0, board_size_z/2]) {        
        board(feet_board_width=feet_board_width,
              feet_board_spacing=feet_board_spacing,
              feet_board_depth=feet_board_depth,
              holes_radius=holes_radius,
              holes_spacing=holes_spacing,
              num_holes_x=num_holes_x,
              num_holes_y=num_holes_y,
              board_size_x=num_holes_x * (holes_spacing + holes_radius * 2) + holes_spacing,
              board_size_y=num_holes_y * (holes_spacing + holes_radius * 2) + holes_spacing,
              board_size_z=board_size_z,
              board_corner_radius=board_corner_radius);
    }
}
